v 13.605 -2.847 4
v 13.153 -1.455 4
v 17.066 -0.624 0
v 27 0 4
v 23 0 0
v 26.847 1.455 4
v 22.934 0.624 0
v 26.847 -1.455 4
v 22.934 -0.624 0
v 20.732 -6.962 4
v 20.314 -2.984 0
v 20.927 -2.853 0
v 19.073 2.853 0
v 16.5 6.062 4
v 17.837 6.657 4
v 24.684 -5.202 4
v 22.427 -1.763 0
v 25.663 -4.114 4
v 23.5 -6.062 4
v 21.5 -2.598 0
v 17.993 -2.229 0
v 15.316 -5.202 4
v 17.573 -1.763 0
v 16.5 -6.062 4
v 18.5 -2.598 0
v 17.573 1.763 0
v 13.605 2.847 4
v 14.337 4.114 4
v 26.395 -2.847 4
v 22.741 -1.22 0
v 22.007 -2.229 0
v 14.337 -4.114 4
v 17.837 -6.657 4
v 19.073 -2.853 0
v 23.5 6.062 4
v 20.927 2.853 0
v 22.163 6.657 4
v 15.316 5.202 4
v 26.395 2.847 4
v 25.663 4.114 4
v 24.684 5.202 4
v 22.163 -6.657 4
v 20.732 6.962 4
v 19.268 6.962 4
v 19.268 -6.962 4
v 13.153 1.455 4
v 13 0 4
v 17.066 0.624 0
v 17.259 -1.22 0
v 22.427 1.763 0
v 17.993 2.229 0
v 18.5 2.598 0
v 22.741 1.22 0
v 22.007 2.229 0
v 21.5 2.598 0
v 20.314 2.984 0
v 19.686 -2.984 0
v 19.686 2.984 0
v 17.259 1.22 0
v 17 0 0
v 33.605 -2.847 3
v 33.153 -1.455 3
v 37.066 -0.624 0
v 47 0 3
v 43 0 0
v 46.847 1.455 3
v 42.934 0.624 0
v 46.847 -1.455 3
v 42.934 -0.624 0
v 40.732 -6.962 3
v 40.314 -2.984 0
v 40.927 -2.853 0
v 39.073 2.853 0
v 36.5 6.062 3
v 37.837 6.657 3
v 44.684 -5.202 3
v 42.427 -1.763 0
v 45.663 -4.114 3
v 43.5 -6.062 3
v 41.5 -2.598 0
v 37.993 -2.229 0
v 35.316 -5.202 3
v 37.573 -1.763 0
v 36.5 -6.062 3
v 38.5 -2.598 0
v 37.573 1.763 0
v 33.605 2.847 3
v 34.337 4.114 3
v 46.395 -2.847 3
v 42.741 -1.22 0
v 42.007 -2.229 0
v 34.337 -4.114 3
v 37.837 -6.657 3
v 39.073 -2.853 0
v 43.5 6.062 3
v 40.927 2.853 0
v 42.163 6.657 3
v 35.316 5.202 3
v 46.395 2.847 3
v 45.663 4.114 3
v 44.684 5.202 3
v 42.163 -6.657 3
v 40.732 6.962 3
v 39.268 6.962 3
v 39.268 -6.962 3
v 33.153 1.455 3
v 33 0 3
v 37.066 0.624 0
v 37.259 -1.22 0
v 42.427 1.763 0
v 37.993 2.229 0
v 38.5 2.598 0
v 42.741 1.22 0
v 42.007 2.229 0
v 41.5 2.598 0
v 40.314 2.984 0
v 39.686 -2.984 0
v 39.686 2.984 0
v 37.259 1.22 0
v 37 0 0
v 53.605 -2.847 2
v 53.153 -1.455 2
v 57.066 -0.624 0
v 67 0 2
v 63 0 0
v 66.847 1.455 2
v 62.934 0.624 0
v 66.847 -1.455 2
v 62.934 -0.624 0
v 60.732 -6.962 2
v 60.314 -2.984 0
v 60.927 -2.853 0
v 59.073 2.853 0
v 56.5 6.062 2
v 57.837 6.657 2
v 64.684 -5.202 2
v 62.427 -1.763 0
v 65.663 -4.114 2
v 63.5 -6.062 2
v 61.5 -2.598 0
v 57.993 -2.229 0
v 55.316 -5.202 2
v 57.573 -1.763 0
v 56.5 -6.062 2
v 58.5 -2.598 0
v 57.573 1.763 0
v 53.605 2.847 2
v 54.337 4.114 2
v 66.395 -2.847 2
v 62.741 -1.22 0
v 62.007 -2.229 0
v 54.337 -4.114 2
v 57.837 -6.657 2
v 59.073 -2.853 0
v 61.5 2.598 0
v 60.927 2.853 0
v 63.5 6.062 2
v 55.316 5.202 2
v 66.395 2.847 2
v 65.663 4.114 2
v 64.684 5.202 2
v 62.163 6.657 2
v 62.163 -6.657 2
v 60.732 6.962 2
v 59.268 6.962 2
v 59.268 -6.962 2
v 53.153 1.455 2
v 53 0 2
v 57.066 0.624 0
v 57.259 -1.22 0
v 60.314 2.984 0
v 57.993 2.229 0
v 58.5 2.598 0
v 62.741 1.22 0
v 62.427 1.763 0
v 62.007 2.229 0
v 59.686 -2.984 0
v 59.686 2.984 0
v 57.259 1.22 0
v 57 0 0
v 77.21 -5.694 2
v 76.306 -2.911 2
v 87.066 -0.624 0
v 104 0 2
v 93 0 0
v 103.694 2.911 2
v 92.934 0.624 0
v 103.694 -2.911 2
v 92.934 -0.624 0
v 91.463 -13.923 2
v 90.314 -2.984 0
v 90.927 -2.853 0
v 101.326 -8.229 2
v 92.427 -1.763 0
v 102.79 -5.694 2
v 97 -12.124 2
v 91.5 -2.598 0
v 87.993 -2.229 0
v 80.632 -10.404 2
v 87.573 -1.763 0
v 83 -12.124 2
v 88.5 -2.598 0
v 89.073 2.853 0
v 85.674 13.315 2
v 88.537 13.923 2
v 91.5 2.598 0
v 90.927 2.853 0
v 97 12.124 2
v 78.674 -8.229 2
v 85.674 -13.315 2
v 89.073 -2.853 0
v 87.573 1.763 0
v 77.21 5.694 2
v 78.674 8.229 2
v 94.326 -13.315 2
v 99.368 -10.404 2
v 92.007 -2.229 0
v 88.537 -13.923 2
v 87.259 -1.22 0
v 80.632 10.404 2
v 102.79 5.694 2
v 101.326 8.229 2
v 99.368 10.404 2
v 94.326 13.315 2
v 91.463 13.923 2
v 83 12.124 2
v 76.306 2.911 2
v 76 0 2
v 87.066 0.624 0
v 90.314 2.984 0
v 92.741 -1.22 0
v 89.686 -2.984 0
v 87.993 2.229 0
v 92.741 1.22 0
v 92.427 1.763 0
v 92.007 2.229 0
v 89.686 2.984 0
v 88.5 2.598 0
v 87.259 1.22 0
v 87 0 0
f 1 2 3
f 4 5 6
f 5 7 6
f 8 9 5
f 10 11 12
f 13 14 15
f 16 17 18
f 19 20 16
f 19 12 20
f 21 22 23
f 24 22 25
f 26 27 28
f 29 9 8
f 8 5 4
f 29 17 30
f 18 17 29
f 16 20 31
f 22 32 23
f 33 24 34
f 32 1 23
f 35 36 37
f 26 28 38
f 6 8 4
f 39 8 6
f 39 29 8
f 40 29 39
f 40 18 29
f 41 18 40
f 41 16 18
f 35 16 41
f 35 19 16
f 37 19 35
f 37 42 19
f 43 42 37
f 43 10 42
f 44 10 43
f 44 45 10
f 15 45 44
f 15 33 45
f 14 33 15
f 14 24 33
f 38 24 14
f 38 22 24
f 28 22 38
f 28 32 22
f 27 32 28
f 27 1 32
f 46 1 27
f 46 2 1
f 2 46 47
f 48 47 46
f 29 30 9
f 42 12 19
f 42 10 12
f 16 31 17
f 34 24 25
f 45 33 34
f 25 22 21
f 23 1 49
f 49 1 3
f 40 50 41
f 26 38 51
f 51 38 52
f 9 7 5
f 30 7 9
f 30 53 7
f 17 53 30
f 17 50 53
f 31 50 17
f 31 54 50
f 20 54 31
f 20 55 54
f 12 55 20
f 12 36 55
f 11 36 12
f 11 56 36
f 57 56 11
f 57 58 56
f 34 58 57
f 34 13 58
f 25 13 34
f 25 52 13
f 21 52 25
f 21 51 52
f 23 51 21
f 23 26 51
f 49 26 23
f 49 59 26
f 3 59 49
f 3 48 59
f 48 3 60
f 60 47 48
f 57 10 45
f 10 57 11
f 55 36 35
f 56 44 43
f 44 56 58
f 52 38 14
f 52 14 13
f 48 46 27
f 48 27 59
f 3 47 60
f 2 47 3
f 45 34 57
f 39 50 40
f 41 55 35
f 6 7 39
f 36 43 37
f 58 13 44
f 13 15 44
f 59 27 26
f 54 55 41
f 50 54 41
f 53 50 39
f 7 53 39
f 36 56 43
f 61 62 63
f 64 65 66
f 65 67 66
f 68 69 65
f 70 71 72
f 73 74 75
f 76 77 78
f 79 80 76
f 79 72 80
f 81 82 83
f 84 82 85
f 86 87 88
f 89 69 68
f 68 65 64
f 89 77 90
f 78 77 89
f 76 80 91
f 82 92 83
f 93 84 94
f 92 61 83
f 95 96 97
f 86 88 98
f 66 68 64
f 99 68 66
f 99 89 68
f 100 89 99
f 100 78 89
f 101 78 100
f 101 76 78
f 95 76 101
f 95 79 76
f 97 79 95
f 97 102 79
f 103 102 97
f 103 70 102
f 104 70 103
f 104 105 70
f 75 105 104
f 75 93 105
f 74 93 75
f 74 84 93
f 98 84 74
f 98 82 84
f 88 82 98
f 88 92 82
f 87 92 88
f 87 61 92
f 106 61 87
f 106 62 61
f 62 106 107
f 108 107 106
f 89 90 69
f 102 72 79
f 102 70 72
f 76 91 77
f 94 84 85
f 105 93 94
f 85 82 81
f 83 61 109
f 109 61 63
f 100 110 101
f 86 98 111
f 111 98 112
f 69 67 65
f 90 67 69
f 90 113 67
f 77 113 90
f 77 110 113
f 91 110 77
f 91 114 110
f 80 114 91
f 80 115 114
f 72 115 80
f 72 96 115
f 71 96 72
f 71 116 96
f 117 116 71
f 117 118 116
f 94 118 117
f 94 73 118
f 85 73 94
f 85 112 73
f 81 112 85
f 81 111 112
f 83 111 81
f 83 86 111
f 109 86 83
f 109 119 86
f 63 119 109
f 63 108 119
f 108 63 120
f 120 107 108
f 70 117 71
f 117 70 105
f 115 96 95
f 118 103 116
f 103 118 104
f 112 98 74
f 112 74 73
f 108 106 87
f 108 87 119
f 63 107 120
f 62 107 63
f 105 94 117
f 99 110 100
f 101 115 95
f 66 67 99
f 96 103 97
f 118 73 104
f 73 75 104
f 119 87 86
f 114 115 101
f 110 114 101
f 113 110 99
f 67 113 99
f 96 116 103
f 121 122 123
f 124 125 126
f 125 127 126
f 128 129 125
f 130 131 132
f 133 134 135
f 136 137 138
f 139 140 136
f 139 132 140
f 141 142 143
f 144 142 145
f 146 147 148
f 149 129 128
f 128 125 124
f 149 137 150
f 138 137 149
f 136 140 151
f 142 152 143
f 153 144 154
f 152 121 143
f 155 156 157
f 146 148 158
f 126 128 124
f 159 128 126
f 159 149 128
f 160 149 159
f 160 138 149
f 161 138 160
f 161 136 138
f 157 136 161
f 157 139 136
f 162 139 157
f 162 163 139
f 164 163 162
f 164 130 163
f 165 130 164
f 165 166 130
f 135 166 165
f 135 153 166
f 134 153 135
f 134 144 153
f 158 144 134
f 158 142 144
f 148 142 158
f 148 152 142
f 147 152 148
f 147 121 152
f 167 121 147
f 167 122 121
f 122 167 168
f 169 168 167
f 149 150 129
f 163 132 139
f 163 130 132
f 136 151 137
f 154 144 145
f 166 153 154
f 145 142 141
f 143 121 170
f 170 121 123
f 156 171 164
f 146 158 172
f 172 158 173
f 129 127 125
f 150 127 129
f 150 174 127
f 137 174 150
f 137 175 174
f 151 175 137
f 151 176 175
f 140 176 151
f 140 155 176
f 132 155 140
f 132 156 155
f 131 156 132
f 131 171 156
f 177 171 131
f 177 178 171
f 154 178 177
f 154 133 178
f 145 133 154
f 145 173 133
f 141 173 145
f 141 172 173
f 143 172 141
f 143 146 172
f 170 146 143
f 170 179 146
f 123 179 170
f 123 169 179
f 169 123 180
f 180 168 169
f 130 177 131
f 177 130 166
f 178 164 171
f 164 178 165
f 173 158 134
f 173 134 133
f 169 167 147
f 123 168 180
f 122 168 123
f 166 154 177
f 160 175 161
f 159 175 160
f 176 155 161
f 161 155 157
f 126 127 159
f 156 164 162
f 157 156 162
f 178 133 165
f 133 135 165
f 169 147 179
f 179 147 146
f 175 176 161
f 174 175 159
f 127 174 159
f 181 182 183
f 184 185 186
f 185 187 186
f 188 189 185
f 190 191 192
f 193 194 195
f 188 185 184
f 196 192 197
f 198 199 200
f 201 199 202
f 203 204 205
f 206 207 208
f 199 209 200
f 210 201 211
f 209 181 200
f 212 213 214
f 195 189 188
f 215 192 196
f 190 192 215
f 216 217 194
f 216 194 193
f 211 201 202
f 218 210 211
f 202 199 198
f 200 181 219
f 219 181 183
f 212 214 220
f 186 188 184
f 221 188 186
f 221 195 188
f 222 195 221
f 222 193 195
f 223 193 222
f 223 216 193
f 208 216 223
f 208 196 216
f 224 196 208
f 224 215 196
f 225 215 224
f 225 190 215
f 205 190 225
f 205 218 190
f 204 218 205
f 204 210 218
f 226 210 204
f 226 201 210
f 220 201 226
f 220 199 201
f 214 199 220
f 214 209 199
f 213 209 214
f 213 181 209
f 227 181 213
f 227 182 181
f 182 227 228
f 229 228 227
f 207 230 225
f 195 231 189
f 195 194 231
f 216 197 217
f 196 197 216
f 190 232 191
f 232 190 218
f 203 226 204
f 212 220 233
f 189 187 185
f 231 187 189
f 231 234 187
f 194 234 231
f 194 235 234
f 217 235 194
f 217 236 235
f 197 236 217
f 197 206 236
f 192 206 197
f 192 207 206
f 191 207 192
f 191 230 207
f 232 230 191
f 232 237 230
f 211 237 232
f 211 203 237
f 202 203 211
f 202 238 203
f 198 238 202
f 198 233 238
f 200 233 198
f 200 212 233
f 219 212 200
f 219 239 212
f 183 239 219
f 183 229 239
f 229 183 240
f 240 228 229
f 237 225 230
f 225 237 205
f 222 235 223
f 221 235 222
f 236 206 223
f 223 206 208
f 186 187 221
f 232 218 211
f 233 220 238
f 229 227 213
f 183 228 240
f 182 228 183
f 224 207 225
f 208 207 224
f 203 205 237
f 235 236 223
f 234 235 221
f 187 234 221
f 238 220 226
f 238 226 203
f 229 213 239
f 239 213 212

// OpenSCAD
translate([20,0,0])
    cylinder(4, 3, 7, $fn=30);    
    
translate([40,0,0])
    cylinder(3, 3, 7, $fn=30);    
    
translate([60,0,0])
    cylinder(2, 3, 7, $fn=30);        
    
translate([90,0,0])
    cylinder(2, 3, 14, $fn=30);        
